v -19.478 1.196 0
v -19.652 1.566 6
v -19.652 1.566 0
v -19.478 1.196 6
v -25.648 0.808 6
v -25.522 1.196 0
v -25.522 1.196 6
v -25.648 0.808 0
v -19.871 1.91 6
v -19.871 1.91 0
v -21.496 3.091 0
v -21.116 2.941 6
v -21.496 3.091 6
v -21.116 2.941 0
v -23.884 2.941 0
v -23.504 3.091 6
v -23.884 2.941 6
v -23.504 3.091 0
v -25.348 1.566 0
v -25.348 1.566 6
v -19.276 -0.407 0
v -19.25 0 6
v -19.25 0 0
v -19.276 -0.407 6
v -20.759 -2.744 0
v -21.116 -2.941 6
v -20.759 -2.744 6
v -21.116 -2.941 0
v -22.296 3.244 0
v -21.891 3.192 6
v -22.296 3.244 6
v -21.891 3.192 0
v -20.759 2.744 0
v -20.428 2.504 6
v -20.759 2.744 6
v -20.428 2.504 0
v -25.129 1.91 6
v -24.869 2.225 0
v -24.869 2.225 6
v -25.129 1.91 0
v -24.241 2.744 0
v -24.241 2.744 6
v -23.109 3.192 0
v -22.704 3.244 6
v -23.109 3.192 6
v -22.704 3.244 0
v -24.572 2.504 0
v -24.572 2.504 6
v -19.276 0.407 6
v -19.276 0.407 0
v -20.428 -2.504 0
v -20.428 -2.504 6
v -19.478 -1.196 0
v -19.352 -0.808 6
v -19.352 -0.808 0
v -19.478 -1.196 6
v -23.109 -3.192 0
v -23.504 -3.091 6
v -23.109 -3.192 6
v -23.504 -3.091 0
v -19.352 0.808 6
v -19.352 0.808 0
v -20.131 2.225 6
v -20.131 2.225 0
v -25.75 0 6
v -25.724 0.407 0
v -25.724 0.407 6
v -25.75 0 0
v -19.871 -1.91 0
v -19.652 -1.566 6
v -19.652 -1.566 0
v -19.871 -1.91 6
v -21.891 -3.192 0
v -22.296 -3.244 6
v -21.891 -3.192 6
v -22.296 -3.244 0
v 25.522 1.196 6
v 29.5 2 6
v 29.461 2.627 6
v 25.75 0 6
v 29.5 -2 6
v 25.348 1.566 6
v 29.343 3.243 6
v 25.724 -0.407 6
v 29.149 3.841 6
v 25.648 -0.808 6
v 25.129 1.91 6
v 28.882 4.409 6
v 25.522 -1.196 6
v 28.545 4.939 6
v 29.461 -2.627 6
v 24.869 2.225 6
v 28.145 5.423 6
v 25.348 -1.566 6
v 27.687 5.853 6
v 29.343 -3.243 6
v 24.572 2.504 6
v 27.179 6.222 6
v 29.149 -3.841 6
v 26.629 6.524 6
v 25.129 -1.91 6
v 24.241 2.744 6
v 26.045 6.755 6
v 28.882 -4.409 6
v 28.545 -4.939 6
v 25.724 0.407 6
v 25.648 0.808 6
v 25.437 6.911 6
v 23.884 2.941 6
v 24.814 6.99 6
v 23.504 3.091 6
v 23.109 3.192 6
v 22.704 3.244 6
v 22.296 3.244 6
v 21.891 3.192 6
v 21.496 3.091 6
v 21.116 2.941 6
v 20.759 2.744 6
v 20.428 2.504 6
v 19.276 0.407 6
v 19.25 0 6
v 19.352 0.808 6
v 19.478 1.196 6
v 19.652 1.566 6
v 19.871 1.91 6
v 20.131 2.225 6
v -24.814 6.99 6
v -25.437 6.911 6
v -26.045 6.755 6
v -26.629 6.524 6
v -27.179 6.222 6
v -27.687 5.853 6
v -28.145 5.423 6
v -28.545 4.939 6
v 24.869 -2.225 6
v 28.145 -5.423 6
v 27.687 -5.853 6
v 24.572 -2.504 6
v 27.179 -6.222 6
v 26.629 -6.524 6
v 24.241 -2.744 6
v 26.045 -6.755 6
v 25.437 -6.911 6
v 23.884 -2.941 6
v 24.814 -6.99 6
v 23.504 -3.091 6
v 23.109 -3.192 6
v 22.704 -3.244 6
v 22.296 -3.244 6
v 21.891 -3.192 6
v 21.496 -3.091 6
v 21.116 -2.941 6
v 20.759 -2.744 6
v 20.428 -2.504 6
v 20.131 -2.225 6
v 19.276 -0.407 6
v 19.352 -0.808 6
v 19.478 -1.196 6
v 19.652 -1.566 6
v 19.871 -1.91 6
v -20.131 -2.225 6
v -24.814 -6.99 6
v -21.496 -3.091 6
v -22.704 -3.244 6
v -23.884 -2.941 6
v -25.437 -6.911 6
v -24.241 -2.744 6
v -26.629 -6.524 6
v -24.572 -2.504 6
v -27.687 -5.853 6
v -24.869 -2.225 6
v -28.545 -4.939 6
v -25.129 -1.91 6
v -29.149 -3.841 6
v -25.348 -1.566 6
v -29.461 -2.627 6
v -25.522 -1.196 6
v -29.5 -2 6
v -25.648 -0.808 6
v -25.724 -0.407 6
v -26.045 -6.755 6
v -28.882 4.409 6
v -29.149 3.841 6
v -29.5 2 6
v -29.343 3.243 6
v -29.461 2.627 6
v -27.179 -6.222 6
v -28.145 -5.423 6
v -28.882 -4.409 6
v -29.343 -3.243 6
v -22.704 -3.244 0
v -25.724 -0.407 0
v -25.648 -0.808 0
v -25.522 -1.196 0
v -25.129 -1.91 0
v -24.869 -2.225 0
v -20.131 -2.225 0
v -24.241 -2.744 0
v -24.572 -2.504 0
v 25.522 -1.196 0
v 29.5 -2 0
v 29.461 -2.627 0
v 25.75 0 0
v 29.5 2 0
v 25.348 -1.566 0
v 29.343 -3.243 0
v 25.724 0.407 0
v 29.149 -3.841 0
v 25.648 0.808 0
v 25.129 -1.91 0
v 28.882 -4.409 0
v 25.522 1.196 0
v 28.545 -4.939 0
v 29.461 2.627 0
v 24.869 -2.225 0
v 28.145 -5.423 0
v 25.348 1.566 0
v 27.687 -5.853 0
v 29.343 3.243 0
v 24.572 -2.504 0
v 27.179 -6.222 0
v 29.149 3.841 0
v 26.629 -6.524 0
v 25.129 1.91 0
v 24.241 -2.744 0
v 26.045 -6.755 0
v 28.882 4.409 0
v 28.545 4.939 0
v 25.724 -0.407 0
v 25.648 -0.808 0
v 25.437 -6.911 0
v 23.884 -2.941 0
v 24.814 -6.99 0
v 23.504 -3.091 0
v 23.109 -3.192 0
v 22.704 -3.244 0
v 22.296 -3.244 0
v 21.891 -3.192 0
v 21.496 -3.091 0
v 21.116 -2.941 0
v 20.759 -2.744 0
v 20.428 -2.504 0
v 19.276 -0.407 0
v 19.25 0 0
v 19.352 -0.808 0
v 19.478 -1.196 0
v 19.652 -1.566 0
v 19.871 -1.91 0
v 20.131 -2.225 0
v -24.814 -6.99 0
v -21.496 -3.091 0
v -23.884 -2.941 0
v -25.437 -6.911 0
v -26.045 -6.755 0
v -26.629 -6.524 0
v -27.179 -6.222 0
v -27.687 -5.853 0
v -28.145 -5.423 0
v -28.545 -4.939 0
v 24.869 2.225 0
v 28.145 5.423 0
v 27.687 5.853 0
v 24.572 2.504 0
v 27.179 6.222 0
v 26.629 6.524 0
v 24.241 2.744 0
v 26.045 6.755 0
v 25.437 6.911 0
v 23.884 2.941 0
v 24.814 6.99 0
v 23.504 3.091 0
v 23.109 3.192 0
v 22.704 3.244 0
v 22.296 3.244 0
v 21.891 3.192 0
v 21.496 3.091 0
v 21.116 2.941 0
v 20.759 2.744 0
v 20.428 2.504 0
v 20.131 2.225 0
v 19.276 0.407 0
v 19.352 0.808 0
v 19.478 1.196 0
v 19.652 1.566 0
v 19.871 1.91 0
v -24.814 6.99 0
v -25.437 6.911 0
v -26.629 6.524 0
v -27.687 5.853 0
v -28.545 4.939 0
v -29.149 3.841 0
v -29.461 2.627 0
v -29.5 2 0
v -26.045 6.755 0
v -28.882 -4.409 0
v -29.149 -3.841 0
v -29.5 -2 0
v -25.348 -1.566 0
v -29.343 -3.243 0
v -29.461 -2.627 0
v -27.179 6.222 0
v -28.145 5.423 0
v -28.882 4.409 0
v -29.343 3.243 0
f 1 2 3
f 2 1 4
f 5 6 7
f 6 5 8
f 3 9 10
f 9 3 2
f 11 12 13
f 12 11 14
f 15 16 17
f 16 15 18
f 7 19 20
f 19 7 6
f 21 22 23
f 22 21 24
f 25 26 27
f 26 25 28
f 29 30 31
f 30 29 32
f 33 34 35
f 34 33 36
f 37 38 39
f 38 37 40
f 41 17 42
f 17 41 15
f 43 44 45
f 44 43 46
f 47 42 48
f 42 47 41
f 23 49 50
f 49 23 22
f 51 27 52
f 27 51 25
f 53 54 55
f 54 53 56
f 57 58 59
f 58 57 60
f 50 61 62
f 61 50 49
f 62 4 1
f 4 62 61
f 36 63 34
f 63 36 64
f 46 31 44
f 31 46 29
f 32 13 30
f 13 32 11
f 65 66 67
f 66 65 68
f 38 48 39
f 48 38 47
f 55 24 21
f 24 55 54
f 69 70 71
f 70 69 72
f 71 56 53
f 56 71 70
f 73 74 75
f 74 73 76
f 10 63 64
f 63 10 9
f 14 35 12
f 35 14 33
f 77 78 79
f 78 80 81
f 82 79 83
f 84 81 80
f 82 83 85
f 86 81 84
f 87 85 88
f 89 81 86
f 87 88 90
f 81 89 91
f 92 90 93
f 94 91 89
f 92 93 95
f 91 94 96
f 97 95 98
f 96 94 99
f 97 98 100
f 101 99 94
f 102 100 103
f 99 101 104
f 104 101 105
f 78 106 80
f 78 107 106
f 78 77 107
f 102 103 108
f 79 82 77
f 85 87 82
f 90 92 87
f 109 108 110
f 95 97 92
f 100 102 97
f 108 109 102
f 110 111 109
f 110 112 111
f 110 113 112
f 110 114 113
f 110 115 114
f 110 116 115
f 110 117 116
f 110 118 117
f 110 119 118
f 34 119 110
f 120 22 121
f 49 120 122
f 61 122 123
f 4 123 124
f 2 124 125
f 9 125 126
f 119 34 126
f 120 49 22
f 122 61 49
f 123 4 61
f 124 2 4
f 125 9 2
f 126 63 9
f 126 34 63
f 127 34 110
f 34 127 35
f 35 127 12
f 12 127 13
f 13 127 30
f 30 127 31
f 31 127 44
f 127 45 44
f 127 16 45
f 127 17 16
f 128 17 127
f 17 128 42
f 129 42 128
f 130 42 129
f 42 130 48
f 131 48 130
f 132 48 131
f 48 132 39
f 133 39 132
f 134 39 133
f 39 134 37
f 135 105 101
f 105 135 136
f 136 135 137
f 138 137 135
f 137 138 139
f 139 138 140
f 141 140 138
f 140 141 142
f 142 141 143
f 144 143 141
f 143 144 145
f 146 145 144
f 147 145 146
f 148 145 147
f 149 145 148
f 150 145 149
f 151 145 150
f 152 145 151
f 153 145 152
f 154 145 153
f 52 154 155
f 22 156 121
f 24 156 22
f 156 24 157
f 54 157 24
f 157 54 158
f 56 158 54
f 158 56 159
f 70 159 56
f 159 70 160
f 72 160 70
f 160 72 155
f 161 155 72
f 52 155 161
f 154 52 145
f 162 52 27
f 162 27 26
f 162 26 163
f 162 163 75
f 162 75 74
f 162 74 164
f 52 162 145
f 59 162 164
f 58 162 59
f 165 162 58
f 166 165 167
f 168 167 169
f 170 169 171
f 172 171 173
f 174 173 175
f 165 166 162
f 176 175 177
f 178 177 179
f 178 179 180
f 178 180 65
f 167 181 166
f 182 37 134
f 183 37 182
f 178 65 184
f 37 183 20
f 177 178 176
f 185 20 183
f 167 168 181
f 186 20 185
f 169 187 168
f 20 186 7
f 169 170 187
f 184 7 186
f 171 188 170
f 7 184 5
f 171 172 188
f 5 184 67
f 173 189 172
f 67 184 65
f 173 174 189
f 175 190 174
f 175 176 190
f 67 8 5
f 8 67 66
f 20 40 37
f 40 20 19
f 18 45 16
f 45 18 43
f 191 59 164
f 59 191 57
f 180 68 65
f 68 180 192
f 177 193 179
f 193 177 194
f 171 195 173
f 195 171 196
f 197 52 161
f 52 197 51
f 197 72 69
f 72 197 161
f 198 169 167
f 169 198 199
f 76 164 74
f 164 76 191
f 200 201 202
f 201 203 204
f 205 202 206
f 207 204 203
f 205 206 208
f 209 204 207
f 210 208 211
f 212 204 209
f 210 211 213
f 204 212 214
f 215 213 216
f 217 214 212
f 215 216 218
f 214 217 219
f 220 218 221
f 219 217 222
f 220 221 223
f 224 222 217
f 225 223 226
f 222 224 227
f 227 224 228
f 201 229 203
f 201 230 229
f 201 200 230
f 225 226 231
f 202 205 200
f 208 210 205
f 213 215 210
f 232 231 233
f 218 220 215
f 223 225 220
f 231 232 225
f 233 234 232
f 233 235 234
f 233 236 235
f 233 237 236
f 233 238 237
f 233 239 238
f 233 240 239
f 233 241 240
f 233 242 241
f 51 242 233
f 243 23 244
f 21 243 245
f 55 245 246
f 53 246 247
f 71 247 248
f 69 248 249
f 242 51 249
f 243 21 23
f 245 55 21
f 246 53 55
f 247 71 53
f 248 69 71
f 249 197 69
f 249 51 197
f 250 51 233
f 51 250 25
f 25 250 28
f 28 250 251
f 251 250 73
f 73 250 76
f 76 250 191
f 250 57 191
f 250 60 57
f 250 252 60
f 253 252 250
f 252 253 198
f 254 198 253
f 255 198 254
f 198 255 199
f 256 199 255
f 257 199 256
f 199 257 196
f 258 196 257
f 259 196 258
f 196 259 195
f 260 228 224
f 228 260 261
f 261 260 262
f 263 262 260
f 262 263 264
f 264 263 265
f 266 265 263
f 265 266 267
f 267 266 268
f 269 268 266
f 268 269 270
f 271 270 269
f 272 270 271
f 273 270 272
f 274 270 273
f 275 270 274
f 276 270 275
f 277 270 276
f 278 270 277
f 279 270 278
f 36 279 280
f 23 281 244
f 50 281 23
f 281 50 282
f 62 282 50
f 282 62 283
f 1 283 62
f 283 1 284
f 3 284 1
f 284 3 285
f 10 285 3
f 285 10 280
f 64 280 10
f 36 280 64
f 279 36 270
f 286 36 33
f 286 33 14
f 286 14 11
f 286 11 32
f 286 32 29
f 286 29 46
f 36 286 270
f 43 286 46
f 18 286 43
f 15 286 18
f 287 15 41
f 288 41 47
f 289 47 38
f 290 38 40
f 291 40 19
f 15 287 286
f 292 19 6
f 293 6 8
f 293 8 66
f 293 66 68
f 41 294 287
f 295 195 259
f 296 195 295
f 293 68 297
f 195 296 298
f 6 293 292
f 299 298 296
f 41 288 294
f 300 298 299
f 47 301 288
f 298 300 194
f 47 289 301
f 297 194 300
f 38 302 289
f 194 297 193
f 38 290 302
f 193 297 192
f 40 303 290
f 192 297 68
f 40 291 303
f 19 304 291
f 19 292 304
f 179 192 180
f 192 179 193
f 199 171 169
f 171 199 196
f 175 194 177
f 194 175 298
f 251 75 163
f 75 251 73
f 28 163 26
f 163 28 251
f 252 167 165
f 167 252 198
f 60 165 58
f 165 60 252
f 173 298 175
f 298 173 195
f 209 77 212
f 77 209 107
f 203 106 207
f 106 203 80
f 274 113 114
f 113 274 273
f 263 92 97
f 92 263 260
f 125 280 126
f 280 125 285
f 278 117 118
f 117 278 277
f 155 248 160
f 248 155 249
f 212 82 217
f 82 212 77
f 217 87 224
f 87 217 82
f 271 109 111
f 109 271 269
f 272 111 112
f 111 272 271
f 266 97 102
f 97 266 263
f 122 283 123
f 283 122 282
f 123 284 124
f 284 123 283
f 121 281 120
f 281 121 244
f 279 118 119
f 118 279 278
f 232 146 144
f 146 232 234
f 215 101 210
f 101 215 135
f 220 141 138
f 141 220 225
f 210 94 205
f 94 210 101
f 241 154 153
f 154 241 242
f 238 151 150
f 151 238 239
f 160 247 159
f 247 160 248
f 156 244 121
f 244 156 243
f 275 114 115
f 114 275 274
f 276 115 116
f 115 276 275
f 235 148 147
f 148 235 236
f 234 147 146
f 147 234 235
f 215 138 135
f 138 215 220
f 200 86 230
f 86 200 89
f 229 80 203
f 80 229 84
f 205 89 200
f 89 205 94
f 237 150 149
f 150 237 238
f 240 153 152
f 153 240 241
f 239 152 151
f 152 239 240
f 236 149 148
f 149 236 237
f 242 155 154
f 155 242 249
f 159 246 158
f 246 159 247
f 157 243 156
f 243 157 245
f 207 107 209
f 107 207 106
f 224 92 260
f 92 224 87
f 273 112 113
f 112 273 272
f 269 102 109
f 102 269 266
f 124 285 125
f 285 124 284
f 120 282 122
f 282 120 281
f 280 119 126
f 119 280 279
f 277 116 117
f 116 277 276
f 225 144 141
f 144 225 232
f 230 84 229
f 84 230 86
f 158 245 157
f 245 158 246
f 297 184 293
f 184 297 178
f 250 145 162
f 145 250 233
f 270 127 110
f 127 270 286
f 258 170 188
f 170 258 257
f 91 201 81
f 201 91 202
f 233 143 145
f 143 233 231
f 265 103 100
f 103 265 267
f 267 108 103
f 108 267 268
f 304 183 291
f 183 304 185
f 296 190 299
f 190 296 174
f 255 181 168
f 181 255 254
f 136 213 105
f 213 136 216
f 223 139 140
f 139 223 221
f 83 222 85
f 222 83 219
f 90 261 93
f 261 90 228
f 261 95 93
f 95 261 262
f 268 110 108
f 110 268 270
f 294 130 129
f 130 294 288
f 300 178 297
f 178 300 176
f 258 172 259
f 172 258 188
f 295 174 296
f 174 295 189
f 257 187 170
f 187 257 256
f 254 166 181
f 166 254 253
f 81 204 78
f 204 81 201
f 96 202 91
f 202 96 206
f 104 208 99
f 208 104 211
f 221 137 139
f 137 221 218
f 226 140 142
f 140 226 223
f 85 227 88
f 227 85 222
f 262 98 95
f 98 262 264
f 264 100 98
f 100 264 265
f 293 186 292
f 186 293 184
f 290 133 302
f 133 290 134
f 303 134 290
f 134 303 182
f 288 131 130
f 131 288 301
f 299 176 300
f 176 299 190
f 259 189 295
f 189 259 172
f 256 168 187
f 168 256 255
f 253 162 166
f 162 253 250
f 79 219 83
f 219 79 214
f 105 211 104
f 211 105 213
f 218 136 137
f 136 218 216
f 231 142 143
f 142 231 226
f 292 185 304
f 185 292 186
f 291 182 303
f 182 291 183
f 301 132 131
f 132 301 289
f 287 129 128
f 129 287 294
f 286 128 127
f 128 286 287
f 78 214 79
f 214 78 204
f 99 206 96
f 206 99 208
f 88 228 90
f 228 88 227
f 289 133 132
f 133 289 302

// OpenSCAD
$fn = 50;


difference() {
	union() {
		hull() {
			translate(v = [-24.5000000000, 2.0000000000, 0]) {
				cylinder(h = 6, r = 5);
			}
			translate(v = [24.5000000000, 2.0000000000, 0]) {
				cylinder(h = 6, r = 5);
			}
			translate(v = [-24.5000000000, -2.0000000000, 0]) {
				cylinder(h = 6, r = 5);
			}
			translate(v = [24.5000000000, -2.0000000000, 0]) {
				cylinder(h = 6, r = 5);
			}
		}
	}
	union() {
		translate(v = [-22.5000000000, 0.0000000000, 0]) {
			cylinder(h = 6, r = 3.2500000000);
		}
		translate(v = [22.5000000000, 0.0000000000, 0]) {
			cylinder(h = 6, r = 3.2500000000);
		}
		translate(v = [-22.5000000000, 0.0000000000, 0]) {
			cylinder(h = 6, r = 1.8000000000);
		}
		translate(v = [22.5000000000, 0.0000000000, 0]) {
			cylinder(h = 6, r = 1.8000000000);
		}
		translate(v = [-22.5000000000, 0.0000000000, 0]) {
			cylinder(h = 6, r = 1.8000000000);
		}
		translate(v = [22.5000000000, 0.0000000000, 0]) {
			cylinder(h = 6, r = 1.8000000000);
		}
		translate(v = [-22.5000000000, 0.0000000000, 0]) {
			cylinder(h = 6, r = 1.8000000000);
		}
		translate(v = [22.5000000000, 0.0000000000, 0]) {
			cylinder(h = 6, r = 1.8000000000);
		}
	}
}
